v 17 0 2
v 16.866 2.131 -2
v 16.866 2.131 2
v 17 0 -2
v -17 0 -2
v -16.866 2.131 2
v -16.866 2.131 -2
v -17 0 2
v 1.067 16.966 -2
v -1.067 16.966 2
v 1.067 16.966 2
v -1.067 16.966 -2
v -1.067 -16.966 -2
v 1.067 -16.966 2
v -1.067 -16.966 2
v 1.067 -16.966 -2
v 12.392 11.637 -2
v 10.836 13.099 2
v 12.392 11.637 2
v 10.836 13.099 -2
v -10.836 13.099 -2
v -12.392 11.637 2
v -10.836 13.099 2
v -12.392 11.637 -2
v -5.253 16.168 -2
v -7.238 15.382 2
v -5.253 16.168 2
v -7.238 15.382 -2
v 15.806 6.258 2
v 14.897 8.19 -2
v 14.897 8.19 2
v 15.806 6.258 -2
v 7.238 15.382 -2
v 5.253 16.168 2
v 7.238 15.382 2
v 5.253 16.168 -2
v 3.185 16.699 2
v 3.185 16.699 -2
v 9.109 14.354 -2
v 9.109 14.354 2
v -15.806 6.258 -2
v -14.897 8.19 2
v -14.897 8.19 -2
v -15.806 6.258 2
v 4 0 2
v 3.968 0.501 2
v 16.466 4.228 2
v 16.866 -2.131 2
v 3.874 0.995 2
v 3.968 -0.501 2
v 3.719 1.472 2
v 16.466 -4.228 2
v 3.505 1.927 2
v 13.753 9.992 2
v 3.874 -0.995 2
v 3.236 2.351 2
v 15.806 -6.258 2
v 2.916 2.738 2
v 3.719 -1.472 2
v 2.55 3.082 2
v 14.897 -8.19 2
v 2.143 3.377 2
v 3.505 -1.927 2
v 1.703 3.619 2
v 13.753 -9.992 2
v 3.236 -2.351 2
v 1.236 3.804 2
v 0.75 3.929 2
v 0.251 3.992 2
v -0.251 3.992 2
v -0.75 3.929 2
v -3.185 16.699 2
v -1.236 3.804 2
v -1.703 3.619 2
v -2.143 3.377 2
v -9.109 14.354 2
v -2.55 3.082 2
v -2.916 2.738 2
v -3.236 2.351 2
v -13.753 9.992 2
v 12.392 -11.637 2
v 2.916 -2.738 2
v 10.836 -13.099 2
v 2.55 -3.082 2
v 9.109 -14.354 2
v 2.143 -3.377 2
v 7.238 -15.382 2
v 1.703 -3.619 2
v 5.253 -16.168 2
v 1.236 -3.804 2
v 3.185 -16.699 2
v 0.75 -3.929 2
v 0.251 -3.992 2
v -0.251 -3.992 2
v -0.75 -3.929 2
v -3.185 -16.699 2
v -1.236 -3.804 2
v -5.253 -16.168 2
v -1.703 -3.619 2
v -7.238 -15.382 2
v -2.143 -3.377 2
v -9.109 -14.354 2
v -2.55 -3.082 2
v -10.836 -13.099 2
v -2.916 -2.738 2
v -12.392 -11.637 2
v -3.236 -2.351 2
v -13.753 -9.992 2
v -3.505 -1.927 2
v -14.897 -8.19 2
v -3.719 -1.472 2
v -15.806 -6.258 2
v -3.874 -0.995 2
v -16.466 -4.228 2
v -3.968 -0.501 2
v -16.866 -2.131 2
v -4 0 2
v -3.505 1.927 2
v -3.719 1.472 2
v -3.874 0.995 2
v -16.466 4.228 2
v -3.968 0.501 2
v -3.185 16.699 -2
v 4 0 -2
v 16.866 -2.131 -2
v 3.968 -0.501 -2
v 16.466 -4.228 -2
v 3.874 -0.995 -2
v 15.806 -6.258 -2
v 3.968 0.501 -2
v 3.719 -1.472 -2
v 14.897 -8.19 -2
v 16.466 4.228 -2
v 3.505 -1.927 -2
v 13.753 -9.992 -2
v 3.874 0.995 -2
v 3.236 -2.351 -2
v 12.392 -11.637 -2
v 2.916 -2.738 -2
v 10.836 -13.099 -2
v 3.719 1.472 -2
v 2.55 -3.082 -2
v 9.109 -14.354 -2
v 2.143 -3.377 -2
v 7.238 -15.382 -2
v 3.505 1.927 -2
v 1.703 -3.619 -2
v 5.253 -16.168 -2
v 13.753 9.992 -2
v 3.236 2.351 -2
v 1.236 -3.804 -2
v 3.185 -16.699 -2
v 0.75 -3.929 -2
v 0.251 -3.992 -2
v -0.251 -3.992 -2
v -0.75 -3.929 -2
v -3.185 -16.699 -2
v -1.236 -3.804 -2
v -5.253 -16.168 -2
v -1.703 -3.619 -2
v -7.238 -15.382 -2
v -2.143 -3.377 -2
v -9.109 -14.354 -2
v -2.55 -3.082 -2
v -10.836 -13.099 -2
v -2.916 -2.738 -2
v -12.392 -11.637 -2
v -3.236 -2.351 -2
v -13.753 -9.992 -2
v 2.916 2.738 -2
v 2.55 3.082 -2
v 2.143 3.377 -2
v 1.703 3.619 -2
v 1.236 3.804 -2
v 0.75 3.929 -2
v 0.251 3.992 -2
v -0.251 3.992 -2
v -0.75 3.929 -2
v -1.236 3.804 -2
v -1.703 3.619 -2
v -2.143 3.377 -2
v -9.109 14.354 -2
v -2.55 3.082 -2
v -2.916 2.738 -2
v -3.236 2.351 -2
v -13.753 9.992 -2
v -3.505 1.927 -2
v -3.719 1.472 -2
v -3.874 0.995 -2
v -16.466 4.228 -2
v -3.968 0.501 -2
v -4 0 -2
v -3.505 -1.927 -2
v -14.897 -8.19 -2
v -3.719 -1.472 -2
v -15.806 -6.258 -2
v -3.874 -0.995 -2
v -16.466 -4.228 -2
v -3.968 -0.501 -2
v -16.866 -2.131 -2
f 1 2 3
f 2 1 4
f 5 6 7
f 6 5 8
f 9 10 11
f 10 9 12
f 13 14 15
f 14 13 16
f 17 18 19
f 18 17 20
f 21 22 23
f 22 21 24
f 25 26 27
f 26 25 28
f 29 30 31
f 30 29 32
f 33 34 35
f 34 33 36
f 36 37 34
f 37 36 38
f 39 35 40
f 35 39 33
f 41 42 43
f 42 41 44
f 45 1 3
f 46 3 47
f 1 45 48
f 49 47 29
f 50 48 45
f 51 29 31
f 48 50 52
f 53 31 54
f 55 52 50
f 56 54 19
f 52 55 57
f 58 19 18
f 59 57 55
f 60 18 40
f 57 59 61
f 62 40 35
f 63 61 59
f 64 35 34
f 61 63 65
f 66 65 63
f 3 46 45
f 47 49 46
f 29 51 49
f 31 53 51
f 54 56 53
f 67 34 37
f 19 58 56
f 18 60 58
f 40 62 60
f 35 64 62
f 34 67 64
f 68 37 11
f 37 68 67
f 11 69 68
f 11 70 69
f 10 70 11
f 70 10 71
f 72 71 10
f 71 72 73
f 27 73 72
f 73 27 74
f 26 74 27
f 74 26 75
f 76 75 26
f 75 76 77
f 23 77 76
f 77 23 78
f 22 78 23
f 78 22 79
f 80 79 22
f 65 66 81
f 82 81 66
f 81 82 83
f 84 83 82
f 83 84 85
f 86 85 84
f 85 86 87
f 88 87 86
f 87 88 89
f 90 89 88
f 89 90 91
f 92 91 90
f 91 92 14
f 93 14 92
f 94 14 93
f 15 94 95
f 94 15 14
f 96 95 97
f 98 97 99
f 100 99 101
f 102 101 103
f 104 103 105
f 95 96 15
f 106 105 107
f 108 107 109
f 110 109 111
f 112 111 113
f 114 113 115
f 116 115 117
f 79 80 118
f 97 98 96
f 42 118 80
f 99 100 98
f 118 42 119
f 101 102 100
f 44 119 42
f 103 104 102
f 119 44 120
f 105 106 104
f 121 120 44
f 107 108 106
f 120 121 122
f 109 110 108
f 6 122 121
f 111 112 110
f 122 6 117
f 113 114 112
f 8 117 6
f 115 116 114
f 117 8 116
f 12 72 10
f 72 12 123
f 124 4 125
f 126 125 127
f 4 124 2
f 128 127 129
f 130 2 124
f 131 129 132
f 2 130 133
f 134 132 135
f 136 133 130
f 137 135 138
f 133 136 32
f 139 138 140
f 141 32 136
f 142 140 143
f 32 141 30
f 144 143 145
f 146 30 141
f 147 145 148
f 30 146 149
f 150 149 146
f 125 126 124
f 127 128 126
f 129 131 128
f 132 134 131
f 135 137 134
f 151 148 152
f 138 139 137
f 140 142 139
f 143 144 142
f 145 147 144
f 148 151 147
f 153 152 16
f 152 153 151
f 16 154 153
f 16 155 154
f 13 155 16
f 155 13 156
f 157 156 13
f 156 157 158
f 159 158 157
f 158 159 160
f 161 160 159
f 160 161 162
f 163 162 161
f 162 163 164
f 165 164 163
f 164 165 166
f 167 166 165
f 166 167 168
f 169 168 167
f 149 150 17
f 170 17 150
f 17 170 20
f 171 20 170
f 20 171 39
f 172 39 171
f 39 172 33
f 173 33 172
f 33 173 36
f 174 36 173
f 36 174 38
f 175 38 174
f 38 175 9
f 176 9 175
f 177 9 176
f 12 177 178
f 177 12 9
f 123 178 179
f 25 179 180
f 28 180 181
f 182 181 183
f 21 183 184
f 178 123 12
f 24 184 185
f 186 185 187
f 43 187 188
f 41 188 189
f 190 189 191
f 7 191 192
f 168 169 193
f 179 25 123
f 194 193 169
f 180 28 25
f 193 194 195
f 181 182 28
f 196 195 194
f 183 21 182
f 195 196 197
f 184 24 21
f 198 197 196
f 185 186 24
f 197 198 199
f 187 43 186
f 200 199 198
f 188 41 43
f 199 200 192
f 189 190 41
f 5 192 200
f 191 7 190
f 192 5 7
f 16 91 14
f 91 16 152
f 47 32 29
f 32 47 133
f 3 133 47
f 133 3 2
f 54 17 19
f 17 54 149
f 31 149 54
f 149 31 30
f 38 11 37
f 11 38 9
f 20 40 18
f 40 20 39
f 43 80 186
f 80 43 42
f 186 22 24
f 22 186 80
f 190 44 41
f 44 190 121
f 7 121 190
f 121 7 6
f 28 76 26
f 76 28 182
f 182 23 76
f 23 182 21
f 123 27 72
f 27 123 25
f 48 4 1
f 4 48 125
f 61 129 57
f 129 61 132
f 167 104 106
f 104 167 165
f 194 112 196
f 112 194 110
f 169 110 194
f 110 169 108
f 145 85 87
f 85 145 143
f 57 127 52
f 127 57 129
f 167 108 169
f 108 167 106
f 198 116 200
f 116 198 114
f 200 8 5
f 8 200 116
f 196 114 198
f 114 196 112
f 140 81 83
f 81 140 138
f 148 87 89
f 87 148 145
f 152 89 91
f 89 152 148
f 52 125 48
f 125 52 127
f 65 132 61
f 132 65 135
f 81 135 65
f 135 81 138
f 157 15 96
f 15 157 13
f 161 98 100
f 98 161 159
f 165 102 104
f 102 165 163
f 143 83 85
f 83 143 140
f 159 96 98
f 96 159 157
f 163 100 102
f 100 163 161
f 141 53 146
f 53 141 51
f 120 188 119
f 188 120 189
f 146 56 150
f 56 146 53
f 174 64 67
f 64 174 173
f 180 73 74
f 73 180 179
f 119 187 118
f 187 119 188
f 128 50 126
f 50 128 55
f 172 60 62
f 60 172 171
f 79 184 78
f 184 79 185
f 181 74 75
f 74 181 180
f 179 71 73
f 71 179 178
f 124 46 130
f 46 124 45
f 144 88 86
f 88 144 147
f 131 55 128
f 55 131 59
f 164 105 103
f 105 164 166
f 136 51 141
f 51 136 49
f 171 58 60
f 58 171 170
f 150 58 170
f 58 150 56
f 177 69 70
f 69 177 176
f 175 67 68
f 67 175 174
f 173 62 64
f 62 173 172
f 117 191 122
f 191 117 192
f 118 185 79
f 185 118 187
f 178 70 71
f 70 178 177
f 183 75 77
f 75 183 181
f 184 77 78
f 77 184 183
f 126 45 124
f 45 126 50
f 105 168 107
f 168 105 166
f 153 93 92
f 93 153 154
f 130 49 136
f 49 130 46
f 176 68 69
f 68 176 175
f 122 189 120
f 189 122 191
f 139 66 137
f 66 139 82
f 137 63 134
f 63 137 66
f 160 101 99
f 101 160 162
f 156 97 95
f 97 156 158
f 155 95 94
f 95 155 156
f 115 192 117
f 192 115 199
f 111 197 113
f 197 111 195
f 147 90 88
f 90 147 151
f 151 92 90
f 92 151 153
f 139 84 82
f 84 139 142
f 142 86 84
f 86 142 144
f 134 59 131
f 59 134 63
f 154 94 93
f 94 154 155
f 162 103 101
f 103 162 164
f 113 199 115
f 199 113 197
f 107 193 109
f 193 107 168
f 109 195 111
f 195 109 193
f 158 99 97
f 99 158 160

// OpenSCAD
$fn = 50;


difference() {
	union() {
		translate(v = [0, 0, -2.0000000000]) {
			cylinder(h = 4, r = 17.0000000000);
		}
	}
	union() {
		translate(v = [0, 0, -100.0000000000]) {
			cylinder(h = 200, r = 4);
		}
	}
}
